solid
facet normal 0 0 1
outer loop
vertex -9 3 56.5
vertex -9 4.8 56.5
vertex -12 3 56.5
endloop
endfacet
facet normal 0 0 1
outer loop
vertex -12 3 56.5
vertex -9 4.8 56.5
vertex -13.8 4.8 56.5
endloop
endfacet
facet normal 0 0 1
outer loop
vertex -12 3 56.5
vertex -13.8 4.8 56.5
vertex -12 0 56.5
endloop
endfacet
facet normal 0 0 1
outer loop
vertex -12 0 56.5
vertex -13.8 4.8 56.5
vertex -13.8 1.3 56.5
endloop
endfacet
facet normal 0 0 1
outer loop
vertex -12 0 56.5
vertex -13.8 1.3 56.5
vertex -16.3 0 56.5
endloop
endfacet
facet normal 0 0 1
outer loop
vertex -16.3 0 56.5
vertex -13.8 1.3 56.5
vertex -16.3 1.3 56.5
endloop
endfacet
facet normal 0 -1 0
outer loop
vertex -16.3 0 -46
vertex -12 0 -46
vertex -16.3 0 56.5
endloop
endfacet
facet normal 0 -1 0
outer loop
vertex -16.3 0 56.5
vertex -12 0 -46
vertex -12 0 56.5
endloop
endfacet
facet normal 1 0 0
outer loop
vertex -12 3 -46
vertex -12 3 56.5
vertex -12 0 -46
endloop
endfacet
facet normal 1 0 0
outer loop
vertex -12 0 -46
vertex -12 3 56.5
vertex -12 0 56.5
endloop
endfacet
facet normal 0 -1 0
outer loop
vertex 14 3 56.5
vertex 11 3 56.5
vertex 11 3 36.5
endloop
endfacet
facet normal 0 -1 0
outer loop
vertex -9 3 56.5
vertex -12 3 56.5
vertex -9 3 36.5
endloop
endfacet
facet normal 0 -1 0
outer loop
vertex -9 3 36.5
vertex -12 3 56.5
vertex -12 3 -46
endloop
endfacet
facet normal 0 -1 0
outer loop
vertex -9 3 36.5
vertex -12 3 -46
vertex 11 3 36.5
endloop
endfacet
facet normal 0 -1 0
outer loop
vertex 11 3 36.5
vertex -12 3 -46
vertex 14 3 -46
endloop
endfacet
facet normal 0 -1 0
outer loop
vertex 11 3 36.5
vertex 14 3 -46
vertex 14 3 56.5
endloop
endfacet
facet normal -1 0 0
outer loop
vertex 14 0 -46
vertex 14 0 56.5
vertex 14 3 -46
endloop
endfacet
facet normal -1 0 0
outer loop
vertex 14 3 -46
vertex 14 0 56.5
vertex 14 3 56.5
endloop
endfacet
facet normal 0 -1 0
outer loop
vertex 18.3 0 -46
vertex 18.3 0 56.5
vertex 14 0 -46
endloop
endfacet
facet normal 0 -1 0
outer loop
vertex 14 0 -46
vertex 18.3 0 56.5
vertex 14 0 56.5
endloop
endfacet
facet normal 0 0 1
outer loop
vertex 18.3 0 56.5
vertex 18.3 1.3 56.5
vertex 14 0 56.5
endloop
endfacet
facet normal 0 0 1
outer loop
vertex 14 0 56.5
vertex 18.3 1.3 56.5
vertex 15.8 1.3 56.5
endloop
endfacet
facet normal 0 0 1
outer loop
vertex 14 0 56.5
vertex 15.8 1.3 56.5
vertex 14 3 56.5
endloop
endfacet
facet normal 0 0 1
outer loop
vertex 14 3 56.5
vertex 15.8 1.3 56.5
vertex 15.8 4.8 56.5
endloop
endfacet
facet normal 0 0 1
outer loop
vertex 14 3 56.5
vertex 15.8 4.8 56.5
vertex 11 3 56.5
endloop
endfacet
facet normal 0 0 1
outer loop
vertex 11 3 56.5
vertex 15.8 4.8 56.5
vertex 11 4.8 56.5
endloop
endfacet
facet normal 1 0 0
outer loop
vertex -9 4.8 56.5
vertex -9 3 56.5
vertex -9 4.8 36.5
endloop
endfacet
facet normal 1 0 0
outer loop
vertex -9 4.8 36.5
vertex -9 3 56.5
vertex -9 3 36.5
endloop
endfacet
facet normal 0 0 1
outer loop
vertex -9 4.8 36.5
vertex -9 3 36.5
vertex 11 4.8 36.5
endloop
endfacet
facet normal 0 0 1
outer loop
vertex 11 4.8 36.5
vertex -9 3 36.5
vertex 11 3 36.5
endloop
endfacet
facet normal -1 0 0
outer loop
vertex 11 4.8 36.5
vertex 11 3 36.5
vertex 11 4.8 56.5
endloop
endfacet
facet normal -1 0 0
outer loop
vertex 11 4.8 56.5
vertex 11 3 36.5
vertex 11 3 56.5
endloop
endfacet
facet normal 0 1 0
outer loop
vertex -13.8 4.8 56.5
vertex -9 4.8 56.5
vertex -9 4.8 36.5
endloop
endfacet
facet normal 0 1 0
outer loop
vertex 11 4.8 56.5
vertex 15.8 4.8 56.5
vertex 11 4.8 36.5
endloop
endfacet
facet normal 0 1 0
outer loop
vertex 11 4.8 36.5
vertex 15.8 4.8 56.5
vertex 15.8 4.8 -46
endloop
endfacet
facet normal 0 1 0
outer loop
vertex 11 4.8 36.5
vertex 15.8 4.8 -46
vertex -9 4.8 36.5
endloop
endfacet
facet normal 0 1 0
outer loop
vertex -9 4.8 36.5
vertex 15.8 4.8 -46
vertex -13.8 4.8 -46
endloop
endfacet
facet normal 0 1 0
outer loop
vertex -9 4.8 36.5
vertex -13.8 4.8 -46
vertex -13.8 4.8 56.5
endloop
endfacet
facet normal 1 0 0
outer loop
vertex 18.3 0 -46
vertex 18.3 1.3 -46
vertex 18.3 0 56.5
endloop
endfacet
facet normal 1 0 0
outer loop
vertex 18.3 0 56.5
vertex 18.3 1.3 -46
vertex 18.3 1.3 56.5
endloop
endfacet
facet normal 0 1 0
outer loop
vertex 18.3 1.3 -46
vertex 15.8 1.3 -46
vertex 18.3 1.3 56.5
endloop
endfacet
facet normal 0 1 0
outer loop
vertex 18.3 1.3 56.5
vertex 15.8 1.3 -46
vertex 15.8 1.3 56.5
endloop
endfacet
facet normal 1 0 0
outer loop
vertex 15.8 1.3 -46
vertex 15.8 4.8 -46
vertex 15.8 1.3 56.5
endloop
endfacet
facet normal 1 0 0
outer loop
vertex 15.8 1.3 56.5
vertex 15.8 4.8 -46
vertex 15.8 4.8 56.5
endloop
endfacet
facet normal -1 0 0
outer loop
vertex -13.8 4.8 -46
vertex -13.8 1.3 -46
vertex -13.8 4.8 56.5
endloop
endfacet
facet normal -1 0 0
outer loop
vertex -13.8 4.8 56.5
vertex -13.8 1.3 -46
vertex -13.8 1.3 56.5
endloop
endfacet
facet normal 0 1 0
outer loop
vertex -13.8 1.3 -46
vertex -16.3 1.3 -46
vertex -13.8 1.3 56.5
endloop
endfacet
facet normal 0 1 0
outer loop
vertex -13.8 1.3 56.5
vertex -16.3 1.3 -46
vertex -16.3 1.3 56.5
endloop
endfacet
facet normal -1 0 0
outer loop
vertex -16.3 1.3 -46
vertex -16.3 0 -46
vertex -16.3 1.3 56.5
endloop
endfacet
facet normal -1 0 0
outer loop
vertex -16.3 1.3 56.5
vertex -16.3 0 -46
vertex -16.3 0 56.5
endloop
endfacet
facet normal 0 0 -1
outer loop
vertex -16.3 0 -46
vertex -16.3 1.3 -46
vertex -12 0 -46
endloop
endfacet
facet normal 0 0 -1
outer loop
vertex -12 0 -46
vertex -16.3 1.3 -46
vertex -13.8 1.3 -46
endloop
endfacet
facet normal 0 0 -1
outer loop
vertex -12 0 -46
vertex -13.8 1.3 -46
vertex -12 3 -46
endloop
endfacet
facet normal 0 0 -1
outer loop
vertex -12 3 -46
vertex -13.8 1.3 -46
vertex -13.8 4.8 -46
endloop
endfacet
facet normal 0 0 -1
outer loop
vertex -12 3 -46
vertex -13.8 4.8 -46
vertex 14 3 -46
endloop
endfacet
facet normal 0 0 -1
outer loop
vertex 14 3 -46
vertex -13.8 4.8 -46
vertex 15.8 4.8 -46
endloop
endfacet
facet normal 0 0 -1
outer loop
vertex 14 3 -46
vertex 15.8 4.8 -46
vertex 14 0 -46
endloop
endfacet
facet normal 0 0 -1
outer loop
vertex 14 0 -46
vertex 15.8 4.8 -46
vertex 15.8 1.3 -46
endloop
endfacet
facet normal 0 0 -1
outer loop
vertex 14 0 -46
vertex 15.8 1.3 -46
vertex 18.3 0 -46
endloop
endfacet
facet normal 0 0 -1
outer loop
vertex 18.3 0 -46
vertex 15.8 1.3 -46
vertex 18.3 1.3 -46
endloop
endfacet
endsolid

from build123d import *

# Parameters (mm, degrees)
EXTRUDE_1_DEPTH     = 56.5
CUT_EXTRUDE_1_REACH = 61.662
SKETCH_2_W          = 20
SKETCH_2_H          = 20
CUT_EXTRUDE_2_DEPTH = 60.661545404
EXTRUDE_2_DEPTH     = 46


with BuildPart() as part:
    # 草图1 → 凸台-拉伸1 (new body)
    with BuildSketch(Plane.XY):
        Polygon((-16.5, 0), (-16.5, 1.5), (-14, 1.5), (-14, 5), (16, 5), (16, 1.5), (18.5, 1.5), (18.5, 0), (14, 0), (14, 3), (-12, 3), (-12, 0), align=None)
    extrude(amount=EXTRUDE_1_DEPTH)

    # 草图2 → 切除-拉伸1 (cut, up to next)
    with BuildSketch(Plane(origin=(0, 5, 0), x_dir=(1, 0, 0), z_dir=(0, 1, 0)), mode=Mode.PRIVATE) as cut_extrude_1_sk1:
        with Locations((1, -46.5)):
            Rectangle(SKETCH_2_W, SKETCH_2_H)
    cut_extrude_1_tool1 = extrude(cut_extrude_1_sk1.sketch, amount=-CUT_EXTRUDE_1_REACH, mode=Mode.PRIVATE) & part.part
    add(cut_extrude_1_tool1.solids().sort_by_distance((1, 5, 46.5))[0], mode=Mode.SUBTRACT)

    # 草图3 → 切除-拉伸2 (cut, through all)
    with BuildSketch(Plane.XY.offset(56.5)):
        Polygon((-16.3, 0), (-16.3, 1.3), (-13.8, 1.3), (-13.8, 4.8), (15.8, 4.8), (15.8, 1.3), (18.3, 1.3), (18.3, 0), (18.5, 0), (18.5, 1.5), (16, 1.5), (16, 5), (-14, 5), (-14, 1.5), (-16.5, 1.5), (-16.5, 0), align=None)
    extrude(amount=-CUT_EXTRUDE_2_DEPTH, mode=Mode.SUBTRACT)

    # 草图4 → 凸台-拉伸2 (add)
    with BuildSketch(Plane(origin=(0, 0, 0), x_dir=(-1, 0, 0), z_dir=(0, 0, -1))):
        Polygon((-15.8, 1.3), (-18.3, 1.3), (-18.3, 0), (-14, 0), (-14, 3), (12, 3), (12, 0), (16.3, 0), (16.3, 1.3), (13.8, 1.3), (13.8, 4.8), (-15.8, 4.8), align=None)
    extrude(amount=EXTRUDE_2_DEPTH)


solid = part.part
